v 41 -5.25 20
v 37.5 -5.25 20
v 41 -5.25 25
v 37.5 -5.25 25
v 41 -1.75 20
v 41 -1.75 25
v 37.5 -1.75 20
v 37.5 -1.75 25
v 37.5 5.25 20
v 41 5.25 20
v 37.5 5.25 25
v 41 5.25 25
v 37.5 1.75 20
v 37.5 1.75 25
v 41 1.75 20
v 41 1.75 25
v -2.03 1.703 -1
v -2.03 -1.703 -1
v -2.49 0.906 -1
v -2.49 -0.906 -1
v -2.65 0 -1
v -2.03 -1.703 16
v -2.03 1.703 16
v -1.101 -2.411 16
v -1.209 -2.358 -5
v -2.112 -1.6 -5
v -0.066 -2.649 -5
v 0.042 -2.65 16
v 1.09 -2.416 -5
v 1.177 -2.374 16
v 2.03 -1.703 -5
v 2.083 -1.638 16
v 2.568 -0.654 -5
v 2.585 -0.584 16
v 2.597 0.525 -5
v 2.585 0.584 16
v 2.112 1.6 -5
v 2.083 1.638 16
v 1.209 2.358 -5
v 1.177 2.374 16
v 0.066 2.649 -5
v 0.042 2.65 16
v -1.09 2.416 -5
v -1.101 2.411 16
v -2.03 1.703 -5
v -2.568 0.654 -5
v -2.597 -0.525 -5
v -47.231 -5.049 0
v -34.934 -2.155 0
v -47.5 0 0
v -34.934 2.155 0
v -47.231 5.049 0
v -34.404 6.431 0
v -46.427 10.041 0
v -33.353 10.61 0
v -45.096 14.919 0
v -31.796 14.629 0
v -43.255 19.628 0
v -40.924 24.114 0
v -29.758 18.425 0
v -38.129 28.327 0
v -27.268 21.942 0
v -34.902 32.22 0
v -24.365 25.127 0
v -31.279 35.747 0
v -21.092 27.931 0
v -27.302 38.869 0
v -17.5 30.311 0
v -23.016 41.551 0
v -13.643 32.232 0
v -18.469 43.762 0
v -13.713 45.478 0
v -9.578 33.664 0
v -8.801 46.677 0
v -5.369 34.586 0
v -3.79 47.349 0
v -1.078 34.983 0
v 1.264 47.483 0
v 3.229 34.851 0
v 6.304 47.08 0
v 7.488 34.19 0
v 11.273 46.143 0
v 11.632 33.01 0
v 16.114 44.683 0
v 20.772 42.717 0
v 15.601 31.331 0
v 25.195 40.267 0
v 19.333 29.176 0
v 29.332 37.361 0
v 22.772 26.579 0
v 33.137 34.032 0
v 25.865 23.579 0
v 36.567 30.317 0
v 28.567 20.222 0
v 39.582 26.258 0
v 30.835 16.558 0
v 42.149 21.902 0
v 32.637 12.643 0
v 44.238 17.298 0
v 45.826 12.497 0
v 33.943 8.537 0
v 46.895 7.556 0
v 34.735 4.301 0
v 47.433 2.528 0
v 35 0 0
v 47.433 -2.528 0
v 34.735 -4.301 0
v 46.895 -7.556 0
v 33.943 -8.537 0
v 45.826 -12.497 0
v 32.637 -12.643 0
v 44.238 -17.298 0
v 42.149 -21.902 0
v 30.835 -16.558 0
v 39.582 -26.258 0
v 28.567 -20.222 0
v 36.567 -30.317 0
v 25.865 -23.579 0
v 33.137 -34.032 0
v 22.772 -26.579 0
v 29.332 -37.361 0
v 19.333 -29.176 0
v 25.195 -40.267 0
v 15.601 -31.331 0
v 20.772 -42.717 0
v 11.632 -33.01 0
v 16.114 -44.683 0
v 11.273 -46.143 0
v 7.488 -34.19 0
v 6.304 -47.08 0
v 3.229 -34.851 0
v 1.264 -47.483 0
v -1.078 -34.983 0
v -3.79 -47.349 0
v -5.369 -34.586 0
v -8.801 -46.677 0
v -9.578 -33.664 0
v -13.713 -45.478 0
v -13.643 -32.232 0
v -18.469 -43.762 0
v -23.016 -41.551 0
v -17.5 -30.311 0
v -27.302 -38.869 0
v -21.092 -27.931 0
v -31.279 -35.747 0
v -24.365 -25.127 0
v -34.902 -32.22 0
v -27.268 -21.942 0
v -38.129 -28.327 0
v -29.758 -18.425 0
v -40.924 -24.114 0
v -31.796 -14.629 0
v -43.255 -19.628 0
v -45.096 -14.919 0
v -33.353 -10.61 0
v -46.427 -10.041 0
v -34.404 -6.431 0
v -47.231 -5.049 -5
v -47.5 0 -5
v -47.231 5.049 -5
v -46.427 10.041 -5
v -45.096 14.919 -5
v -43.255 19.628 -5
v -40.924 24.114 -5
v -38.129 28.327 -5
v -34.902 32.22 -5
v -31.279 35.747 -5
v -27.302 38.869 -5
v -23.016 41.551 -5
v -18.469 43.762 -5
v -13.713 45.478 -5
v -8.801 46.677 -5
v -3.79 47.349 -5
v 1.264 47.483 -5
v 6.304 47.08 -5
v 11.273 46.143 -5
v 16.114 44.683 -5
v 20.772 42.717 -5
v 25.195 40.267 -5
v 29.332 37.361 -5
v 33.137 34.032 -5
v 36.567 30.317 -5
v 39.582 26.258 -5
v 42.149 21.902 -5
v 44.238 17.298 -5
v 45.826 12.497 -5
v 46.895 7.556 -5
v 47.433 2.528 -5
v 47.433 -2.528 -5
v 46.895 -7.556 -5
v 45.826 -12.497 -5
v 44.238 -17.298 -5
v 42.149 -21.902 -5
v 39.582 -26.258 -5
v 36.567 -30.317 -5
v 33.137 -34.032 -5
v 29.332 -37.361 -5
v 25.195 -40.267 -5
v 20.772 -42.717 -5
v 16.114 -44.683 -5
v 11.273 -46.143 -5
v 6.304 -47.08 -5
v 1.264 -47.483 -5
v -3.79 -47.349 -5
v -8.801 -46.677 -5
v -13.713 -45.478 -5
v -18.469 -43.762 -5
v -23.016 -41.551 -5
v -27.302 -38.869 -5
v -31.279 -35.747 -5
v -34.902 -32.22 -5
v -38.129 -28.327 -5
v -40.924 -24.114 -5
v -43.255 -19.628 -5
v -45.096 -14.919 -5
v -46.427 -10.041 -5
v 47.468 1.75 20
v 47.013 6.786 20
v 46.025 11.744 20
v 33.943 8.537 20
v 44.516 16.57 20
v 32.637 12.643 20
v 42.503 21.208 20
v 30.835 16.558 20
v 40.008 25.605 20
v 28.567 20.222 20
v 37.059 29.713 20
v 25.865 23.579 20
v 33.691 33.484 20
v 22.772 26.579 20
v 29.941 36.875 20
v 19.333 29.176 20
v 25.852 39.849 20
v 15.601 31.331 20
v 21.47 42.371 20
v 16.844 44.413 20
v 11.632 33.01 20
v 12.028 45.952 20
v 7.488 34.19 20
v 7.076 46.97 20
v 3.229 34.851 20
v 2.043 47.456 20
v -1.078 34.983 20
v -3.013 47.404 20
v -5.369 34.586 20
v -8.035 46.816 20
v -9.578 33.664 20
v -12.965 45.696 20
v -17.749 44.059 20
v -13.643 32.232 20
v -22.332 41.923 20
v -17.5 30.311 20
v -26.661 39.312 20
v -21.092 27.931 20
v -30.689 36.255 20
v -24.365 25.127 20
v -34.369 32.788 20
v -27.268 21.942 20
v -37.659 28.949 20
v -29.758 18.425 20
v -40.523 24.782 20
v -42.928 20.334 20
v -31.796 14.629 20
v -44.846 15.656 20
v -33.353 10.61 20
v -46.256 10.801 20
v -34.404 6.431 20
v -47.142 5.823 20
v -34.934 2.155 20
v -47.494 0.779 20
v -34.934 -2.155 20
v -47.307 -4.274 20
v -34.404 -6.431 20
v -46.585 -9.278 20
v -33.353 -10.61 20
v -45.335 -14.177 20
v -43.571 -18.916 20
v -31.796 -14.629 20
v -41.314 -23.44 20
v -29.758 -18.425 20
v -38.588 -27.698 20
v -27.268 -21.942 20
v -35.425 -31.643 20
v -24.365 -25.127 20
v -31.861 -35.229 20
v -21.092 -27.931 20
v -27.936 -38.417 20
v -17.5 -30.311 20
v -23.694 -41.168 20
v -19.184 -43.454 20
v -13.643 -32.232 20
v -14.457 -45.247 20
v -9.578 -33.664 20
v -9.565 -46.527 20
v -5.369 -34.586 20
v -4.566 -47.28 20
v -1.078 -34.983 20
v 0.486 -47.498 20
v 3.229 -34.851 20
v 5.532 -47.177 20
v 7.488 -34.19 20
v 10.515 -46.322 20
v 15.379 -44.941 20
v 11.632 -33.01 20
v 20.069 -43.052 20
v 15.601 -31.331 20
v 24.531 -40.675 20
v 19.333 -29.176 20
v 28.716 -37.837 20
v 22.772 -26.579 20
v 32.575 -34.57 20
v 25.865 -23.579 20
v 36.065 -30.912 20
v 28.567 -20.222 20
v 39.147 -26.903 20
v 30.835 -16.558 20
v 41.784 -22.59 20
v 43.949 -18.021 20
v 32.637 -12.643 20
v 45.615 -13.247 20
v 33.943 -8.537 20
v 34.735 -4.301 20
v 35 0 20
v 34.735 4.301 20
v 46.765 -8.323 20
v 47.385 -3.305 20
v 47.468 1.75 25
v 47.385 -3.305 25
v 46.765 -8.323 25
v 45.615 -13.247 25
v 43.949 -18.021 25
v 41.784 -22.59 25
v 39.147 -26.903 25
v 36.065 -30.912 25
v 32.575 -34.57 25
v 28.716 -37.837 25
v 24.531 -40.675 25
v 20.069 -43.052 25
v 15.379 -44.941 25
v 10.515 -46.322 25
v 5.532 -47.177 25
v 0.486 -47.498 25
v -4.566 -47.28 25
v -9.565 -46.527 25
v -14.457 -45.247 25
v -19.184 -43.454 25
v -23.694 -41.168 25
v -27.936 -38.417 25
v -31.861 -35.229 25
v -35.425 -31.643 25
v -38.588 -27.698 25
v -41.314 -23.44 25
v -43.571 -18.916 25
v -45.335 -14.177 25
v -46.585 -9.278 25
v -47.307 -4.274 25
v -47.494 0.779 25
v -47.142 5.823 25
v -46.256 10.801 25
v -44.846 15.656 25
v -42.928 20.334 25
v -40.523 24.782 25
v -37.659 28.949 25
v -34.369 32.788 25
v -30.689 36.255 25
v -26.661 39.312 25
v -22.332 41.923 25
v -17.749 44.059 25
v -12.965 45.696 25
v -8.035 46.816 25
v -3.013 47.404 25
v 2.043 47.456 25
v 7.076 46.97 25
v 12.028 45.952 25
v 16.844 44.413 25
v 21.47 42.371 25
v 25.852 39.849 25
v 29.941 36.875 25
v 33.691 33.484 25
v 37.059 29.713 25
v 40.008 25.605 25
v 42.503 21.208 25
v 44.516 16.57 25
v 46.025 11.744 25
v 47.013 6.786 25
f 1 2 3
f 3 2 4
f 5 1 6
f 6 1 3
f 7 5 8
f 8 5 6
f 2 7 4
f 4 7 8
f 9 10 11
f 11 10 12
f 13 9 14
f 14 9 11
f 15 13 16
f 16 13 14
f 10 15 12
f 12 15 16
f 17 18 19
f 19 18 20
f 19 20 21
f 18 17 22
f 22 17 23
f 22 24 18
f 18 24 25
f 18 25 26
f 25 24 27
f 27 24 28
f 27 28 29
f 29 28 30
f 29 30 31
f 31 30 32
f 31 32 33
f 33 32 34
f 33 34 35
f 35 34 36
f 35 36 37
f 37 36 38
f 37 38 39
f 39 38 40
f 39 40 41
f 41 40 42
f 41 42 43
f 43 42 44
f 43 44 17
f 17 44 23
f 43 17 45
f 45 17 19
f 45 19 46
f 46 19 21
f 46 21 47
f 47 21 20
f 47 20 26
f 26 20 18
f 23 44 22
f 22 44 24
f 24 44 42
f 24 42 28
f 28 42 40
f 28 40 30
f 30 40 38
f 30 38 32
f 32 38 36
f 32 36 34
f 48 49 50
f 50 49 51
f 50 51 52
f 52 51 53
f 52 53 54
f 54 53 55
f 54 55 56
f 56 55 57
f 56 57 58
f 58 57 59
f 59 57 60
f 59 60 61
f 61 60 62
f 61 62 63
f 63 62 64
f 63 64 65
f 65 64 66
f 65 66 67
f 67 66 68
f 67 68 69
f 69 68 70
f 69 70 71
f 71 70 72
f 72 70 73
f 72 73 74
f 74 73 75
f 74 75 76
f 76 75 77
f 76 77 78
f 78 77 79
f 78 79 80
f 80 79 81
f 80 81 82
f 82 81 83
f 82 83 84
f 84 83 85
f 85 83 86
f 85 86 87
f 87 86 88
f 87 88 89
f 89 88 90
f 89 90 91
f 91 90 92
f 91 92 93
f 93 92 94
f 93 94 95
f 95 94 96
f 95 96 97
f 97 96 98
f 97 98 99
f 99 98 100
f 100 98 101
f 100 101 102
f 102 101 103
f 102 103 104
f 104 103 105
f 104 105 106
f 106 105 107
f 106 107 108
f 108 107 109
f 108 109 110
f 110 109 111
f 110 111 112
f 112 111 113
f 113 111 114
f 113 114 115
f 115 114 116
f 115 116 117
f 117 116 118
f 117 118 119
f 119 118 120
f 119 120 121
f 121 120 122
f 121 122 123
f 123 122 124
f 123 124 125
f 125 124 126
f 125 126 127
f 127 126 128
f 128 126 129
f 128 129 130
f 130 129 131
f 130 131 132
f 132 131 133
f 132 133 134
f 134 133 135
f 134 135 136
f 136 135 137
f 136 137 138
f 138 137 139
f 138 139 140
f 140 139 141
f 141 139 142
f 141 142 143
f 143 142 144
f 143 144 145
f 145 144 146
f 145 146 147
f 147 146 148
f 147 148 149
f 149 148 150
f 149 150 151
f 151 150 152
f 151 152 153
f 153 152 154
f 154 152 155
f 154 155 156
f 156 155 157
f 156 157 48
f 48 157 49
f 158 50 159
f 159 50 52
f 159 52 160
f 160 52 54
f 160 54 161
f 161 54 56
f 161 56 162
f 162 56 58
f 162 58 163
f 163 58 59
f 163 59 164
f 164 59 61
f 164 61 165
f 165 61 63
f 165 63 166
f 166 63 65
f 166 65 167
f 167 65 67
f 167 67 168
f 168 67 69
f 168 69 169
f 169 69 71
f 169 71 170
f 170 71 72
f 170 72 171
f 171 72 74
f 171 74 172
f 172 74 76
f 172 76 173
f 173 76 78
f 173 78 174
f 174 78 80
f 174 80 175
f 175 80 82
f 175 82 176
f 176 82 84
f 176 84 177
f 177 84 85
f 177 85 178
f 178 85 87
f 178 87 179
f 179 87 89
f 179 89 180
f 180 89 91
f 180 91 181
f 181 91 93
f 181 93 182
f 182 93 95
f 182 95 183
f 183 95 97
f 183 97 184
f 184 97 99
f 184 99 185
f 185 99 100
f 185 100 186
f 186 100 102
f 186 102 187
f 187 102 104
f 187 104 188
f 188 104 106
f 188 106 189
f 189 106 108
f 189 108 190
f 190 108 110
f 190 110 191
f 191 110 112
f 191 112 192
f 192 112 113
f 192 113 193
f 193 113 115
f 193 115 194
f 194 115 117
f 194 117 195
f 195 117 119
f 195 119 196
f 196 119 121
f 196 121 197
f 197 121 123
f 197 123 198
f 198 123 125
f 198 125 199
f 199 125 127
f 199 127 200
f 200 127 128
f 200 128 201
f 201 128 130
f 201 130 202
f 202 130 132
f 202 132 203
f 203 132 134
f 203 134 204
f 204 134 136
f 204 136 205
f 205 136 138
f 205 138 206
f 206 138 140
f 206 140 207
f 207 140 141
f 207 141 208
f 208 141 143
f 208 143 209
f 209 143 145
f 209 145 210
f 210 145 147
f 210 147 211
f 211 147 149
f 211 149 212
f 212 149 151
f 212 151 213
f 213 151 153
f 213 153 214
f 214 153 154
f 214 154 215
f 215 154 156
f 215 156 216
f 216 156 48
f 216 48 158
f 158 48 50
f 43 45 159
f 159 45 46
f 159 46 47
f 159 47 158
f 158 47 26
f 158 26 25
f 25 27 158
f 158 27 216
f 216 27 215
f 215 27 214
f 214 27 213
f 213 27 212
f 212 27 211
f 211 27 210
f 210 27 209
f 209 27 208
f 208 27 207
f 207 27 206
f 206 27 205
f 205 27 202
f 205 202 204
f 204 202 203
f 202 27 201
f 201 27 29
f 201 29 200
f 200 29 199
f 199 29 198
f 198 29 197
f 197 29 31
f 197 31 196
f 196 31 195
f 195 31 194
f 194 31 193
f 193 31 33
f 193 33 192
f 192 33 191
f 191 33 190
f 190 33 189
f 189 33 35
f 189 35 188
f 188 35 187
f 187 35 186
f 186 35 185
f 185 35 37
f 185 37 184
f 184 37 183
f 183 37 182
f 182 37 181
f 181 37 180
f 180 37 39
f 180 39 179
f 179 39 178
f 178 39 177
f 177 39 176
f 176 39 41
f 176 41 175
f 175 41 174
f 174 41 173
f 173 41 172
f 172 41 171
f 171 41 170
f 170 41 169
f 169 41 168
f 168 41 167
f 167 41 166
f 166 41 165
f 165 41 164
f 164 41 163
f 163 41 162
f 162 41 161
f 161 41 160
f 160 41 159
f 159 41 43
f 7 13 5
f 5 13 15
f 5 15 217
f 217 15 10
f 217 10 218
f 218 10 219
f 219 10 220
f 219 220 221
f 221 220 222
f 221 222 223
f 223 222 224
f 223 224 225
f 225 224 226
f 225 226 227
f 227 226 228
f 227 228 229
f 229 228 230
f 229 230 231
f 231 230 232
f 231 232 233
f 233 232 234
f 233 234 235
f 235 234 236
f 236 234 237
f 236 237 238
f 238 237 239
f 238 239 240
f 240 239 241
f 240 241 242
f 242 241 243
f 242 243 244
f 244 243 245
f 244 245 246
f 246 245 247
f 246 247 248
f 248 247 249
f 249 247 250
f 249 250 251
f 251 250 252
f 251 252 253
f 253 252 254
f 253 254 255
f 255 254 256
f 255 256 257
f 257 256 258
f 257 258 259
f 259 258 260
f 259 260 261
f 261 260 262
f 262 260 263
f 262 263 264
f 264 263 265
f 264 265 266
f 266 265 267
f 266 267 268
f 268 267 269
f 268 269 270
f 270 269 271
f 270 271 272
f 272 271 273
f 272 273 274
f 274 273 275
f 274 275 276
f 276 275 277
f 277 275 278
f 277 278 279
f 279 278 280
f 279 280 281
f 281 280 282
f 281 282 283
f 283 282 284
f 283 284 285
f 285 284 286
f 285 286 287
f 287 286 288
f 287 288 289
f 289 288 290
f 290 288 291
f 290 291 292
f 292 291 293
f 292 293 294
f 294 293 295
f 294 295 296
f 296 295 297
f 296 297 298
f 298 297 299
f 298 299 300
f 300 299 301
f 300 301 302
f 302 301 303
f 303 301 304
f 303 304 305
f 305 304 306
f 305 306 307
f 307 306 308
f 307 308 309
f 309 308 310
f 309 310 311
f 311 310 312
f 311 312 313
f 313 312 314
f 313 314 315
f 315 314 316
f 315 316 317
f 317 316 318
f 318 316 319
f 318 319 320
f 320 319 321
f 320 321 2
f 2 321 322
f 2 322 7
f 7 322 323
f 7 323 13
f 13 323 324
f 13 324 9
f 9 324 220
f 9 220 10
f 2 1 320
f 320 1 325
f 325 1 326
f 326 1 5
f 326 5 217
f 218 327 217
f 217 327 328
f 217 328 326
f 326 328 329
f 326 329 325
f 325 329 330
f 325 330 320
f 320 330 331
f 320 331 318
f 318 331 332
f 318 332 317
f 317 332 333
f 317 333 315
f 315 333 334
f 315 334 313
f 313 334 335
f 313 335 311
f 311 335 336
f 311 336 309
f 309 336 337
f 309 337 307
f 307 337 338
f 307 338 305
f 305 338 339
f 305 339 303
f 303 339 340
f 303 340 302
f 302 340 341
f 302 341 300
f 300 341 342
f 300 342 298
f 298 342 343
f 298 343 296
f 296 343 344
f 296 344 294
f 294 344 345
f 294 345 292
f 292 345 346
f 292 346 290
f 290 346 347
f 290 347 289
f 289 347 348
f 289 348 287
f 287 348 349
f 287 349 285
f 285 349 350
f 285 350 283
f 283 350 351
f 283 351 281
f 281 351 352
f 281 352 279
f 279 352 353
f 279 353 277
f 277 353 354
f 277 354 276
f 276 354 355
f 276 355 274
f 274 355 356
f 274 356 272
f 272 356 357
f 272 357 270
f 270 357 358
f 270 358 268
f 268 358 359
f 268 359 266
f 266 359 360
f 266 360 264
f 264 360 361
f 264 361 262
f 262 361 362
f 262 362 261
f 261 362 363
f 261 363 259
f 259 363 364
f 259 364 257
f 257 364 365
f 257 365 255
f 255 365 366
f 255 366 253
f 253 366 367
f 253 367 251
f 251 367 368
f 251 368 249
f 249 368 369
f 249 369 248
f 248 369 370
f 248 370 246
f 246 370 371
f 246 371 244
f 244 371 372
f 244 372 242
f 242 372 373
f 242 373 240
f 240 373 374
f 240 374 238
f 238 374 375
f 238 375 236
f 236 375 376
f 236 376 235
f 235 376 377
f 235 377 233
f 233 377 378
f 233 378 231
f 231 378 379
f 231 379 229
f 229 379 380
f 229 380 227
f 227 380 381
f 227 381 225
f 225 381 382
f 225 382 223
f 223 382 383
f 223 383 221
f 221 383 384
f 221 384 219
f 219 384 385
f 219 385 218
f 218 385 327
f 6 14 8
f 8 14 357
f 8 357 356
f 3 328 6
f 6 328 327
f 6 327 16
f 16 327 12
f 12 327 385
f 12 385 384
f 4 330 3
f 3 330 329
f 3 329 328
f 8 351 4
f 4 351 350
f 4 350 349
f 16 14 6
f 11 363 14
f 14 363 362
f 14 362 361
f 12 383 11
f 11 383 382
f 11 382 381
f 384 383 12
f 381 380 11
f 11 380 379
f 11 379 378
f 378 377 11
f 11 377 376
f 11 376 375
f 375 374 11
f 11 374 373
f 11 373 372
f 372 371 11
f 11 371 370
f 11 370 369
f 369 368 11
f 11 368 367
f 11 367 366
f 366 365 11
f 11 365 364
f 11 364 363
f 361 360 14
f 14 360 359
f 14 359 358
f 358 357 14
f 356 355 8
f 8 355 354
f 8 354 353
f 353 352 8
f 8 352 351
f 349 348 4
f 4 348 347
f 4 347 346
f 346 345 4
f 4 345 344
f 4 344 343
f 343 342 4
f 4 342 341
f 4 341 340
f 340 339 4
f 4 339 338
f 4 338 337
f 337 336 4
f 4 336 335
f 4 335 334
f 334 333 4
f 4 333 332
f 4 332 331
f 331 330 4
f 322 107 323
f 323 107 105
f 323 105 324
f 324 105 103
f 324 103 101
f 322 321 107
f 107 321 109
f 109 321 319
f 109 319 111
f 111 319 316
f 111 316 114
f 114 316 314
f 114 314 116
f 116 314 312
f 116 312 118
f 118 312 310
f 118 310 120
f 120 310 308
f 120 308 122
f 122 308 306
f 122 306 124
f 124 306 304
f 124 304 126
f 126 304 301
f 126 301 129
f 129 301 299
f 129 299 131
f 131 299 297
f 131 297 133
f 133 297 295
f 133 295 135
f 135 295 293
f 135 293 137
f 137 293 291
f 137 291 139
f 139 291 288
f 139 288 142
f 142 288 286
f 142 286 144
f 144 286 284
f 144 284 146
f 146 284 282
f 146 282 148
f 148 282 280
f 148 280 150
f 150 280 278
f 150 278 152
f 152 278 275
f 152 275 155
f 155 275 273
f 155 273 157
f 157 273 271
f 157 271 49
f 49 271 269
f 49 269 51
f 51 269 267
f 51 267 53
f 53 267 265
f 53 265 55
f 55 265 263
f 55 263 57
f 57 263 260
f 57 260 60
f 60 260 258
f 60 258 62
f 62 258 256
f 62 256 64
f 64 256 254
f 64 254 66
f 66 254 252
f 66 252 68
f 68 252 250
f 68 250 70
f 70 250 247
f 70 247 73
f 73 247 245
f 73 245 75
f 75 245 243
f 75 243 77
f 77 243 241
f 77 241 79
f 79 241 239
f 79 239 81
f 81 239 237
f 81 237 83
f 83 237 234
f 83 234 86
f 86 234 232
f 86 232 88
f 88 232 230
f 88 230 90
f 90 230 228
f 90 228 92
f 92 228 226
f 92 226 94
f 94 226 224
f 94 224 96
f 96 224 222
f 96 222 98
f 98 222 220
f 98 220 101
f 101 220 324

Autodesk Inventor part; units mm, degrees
ref_plane "YZ Plane" through (0, 0, 0) normal (1, 0, 0) x (0, 1, 0)
ref_plane "XZ Plane" through (0, 0, 0) normal (0, 1, 0) x (-1, 0, 0)
ref_plane "XY Plane" through (0, 0, 0) normal (0, 0, 1) x (1, 0, 0)
sketch "Sketch1" plane through (0, 0, 0) normal (0, 0, 1) x (1, 0, 0)
  circle A0 centre (0, 0) radius 35
  dimension "d0" = 70
extrude "Extrusion1" add sketch "Sketch1" along normal blind 20
sketch "Sketch2" plane through (0, 0, 20) normal (0, 0, 1) x (1, 0, 0)
  circle A0 centre (0, 0) radius 47.5
  dimension "d3" = 95
extrude "Extrusion2" add sketch "Sketch2" along normal blind 5
sketch "Sketch3" plane through (0, 0, 0) normal (0, 0, -1) x (-1, 0, 0)
  circle A0 centre (0, 0) radius 47.5
  dimension "d6" = 95
extrude "Extrusion3" add sketch "Sketch3" along normal blind 5
sketch "Sketch4" plane through (0, 0, -5) normal (0, 0, -1) x (-1, 0, 0)
  circle A0 centre (0, 0) radius 2.65
  line L0 (-2.65, 0) -> (2.03, 0)
  line L1 (2.03, 0) -> (2.03, -1.7034)
  line L2 (2.03, 0) -> (2.03, 1.7034)
  dimension "d9" = 5.3
  dimension "d10" = 4.68
extrude "Extrusion4" cut sketch "Sketch4" against normal blind 21 contours L2 L0 A0 | A0 L0 L1
extrude "Extrusion5" cut sketch "Sketch4" against normal blind 4 contours A0 L1 L2
sketch "Sketch5" plane through (0, 0, 25) normal (0, 0, 1) x (1, 0, 0)
  line L0 (57.5, 1.75) -> (37.5, 1.75)
  line L1 (37.5, 1.75) -> (37.5, -1.75)
  line L2 (37.5, -1.75) -> (57.5, -1.75)
  line L3 (57.5, -1.75) -> (57.5, 1.75)
  circle A0 centre (0, 0) radius 47.5 projected
  line L4 (57.5, 1.75) -> (37.5, -1.75) construction
  line L5 (37.5, 1.75) -> (57.5, -1.75) construction
  line L6 (41, 5.25) -> (37.5, 5.25)
  line L7 (37.5, 5.25) -> (37.5, -5.25)
  line L8 (37.5, -5.25) -> (41, -5.25)
  line L9 (41, -5.25) -> (41, 5.25)
  point P0 (47.5, 0)
  point P1 (37.5, 0)
  point P2 (41, -1.75)
  point P3 (41, 1.75)
  point P4 (47.4678, 1.75)
  point P5 (47.4678, -1.75)
  dimension "d15" = 20
  dimension "d16" = 3.5
  dimension "d21" = 3.5
  dimension "d22" = 3.5
  dimension "d23" = 3.5
  dimension "d24" = 0
extrude "Extrusion6" cut sketch "Sketch5" against normal blind 10 contours L3 L2 A0 L0 | L0 L7 L6 L9 | L9 L8 L7 L2
equation "\"d6\" = d3"
properties part number "spool"
